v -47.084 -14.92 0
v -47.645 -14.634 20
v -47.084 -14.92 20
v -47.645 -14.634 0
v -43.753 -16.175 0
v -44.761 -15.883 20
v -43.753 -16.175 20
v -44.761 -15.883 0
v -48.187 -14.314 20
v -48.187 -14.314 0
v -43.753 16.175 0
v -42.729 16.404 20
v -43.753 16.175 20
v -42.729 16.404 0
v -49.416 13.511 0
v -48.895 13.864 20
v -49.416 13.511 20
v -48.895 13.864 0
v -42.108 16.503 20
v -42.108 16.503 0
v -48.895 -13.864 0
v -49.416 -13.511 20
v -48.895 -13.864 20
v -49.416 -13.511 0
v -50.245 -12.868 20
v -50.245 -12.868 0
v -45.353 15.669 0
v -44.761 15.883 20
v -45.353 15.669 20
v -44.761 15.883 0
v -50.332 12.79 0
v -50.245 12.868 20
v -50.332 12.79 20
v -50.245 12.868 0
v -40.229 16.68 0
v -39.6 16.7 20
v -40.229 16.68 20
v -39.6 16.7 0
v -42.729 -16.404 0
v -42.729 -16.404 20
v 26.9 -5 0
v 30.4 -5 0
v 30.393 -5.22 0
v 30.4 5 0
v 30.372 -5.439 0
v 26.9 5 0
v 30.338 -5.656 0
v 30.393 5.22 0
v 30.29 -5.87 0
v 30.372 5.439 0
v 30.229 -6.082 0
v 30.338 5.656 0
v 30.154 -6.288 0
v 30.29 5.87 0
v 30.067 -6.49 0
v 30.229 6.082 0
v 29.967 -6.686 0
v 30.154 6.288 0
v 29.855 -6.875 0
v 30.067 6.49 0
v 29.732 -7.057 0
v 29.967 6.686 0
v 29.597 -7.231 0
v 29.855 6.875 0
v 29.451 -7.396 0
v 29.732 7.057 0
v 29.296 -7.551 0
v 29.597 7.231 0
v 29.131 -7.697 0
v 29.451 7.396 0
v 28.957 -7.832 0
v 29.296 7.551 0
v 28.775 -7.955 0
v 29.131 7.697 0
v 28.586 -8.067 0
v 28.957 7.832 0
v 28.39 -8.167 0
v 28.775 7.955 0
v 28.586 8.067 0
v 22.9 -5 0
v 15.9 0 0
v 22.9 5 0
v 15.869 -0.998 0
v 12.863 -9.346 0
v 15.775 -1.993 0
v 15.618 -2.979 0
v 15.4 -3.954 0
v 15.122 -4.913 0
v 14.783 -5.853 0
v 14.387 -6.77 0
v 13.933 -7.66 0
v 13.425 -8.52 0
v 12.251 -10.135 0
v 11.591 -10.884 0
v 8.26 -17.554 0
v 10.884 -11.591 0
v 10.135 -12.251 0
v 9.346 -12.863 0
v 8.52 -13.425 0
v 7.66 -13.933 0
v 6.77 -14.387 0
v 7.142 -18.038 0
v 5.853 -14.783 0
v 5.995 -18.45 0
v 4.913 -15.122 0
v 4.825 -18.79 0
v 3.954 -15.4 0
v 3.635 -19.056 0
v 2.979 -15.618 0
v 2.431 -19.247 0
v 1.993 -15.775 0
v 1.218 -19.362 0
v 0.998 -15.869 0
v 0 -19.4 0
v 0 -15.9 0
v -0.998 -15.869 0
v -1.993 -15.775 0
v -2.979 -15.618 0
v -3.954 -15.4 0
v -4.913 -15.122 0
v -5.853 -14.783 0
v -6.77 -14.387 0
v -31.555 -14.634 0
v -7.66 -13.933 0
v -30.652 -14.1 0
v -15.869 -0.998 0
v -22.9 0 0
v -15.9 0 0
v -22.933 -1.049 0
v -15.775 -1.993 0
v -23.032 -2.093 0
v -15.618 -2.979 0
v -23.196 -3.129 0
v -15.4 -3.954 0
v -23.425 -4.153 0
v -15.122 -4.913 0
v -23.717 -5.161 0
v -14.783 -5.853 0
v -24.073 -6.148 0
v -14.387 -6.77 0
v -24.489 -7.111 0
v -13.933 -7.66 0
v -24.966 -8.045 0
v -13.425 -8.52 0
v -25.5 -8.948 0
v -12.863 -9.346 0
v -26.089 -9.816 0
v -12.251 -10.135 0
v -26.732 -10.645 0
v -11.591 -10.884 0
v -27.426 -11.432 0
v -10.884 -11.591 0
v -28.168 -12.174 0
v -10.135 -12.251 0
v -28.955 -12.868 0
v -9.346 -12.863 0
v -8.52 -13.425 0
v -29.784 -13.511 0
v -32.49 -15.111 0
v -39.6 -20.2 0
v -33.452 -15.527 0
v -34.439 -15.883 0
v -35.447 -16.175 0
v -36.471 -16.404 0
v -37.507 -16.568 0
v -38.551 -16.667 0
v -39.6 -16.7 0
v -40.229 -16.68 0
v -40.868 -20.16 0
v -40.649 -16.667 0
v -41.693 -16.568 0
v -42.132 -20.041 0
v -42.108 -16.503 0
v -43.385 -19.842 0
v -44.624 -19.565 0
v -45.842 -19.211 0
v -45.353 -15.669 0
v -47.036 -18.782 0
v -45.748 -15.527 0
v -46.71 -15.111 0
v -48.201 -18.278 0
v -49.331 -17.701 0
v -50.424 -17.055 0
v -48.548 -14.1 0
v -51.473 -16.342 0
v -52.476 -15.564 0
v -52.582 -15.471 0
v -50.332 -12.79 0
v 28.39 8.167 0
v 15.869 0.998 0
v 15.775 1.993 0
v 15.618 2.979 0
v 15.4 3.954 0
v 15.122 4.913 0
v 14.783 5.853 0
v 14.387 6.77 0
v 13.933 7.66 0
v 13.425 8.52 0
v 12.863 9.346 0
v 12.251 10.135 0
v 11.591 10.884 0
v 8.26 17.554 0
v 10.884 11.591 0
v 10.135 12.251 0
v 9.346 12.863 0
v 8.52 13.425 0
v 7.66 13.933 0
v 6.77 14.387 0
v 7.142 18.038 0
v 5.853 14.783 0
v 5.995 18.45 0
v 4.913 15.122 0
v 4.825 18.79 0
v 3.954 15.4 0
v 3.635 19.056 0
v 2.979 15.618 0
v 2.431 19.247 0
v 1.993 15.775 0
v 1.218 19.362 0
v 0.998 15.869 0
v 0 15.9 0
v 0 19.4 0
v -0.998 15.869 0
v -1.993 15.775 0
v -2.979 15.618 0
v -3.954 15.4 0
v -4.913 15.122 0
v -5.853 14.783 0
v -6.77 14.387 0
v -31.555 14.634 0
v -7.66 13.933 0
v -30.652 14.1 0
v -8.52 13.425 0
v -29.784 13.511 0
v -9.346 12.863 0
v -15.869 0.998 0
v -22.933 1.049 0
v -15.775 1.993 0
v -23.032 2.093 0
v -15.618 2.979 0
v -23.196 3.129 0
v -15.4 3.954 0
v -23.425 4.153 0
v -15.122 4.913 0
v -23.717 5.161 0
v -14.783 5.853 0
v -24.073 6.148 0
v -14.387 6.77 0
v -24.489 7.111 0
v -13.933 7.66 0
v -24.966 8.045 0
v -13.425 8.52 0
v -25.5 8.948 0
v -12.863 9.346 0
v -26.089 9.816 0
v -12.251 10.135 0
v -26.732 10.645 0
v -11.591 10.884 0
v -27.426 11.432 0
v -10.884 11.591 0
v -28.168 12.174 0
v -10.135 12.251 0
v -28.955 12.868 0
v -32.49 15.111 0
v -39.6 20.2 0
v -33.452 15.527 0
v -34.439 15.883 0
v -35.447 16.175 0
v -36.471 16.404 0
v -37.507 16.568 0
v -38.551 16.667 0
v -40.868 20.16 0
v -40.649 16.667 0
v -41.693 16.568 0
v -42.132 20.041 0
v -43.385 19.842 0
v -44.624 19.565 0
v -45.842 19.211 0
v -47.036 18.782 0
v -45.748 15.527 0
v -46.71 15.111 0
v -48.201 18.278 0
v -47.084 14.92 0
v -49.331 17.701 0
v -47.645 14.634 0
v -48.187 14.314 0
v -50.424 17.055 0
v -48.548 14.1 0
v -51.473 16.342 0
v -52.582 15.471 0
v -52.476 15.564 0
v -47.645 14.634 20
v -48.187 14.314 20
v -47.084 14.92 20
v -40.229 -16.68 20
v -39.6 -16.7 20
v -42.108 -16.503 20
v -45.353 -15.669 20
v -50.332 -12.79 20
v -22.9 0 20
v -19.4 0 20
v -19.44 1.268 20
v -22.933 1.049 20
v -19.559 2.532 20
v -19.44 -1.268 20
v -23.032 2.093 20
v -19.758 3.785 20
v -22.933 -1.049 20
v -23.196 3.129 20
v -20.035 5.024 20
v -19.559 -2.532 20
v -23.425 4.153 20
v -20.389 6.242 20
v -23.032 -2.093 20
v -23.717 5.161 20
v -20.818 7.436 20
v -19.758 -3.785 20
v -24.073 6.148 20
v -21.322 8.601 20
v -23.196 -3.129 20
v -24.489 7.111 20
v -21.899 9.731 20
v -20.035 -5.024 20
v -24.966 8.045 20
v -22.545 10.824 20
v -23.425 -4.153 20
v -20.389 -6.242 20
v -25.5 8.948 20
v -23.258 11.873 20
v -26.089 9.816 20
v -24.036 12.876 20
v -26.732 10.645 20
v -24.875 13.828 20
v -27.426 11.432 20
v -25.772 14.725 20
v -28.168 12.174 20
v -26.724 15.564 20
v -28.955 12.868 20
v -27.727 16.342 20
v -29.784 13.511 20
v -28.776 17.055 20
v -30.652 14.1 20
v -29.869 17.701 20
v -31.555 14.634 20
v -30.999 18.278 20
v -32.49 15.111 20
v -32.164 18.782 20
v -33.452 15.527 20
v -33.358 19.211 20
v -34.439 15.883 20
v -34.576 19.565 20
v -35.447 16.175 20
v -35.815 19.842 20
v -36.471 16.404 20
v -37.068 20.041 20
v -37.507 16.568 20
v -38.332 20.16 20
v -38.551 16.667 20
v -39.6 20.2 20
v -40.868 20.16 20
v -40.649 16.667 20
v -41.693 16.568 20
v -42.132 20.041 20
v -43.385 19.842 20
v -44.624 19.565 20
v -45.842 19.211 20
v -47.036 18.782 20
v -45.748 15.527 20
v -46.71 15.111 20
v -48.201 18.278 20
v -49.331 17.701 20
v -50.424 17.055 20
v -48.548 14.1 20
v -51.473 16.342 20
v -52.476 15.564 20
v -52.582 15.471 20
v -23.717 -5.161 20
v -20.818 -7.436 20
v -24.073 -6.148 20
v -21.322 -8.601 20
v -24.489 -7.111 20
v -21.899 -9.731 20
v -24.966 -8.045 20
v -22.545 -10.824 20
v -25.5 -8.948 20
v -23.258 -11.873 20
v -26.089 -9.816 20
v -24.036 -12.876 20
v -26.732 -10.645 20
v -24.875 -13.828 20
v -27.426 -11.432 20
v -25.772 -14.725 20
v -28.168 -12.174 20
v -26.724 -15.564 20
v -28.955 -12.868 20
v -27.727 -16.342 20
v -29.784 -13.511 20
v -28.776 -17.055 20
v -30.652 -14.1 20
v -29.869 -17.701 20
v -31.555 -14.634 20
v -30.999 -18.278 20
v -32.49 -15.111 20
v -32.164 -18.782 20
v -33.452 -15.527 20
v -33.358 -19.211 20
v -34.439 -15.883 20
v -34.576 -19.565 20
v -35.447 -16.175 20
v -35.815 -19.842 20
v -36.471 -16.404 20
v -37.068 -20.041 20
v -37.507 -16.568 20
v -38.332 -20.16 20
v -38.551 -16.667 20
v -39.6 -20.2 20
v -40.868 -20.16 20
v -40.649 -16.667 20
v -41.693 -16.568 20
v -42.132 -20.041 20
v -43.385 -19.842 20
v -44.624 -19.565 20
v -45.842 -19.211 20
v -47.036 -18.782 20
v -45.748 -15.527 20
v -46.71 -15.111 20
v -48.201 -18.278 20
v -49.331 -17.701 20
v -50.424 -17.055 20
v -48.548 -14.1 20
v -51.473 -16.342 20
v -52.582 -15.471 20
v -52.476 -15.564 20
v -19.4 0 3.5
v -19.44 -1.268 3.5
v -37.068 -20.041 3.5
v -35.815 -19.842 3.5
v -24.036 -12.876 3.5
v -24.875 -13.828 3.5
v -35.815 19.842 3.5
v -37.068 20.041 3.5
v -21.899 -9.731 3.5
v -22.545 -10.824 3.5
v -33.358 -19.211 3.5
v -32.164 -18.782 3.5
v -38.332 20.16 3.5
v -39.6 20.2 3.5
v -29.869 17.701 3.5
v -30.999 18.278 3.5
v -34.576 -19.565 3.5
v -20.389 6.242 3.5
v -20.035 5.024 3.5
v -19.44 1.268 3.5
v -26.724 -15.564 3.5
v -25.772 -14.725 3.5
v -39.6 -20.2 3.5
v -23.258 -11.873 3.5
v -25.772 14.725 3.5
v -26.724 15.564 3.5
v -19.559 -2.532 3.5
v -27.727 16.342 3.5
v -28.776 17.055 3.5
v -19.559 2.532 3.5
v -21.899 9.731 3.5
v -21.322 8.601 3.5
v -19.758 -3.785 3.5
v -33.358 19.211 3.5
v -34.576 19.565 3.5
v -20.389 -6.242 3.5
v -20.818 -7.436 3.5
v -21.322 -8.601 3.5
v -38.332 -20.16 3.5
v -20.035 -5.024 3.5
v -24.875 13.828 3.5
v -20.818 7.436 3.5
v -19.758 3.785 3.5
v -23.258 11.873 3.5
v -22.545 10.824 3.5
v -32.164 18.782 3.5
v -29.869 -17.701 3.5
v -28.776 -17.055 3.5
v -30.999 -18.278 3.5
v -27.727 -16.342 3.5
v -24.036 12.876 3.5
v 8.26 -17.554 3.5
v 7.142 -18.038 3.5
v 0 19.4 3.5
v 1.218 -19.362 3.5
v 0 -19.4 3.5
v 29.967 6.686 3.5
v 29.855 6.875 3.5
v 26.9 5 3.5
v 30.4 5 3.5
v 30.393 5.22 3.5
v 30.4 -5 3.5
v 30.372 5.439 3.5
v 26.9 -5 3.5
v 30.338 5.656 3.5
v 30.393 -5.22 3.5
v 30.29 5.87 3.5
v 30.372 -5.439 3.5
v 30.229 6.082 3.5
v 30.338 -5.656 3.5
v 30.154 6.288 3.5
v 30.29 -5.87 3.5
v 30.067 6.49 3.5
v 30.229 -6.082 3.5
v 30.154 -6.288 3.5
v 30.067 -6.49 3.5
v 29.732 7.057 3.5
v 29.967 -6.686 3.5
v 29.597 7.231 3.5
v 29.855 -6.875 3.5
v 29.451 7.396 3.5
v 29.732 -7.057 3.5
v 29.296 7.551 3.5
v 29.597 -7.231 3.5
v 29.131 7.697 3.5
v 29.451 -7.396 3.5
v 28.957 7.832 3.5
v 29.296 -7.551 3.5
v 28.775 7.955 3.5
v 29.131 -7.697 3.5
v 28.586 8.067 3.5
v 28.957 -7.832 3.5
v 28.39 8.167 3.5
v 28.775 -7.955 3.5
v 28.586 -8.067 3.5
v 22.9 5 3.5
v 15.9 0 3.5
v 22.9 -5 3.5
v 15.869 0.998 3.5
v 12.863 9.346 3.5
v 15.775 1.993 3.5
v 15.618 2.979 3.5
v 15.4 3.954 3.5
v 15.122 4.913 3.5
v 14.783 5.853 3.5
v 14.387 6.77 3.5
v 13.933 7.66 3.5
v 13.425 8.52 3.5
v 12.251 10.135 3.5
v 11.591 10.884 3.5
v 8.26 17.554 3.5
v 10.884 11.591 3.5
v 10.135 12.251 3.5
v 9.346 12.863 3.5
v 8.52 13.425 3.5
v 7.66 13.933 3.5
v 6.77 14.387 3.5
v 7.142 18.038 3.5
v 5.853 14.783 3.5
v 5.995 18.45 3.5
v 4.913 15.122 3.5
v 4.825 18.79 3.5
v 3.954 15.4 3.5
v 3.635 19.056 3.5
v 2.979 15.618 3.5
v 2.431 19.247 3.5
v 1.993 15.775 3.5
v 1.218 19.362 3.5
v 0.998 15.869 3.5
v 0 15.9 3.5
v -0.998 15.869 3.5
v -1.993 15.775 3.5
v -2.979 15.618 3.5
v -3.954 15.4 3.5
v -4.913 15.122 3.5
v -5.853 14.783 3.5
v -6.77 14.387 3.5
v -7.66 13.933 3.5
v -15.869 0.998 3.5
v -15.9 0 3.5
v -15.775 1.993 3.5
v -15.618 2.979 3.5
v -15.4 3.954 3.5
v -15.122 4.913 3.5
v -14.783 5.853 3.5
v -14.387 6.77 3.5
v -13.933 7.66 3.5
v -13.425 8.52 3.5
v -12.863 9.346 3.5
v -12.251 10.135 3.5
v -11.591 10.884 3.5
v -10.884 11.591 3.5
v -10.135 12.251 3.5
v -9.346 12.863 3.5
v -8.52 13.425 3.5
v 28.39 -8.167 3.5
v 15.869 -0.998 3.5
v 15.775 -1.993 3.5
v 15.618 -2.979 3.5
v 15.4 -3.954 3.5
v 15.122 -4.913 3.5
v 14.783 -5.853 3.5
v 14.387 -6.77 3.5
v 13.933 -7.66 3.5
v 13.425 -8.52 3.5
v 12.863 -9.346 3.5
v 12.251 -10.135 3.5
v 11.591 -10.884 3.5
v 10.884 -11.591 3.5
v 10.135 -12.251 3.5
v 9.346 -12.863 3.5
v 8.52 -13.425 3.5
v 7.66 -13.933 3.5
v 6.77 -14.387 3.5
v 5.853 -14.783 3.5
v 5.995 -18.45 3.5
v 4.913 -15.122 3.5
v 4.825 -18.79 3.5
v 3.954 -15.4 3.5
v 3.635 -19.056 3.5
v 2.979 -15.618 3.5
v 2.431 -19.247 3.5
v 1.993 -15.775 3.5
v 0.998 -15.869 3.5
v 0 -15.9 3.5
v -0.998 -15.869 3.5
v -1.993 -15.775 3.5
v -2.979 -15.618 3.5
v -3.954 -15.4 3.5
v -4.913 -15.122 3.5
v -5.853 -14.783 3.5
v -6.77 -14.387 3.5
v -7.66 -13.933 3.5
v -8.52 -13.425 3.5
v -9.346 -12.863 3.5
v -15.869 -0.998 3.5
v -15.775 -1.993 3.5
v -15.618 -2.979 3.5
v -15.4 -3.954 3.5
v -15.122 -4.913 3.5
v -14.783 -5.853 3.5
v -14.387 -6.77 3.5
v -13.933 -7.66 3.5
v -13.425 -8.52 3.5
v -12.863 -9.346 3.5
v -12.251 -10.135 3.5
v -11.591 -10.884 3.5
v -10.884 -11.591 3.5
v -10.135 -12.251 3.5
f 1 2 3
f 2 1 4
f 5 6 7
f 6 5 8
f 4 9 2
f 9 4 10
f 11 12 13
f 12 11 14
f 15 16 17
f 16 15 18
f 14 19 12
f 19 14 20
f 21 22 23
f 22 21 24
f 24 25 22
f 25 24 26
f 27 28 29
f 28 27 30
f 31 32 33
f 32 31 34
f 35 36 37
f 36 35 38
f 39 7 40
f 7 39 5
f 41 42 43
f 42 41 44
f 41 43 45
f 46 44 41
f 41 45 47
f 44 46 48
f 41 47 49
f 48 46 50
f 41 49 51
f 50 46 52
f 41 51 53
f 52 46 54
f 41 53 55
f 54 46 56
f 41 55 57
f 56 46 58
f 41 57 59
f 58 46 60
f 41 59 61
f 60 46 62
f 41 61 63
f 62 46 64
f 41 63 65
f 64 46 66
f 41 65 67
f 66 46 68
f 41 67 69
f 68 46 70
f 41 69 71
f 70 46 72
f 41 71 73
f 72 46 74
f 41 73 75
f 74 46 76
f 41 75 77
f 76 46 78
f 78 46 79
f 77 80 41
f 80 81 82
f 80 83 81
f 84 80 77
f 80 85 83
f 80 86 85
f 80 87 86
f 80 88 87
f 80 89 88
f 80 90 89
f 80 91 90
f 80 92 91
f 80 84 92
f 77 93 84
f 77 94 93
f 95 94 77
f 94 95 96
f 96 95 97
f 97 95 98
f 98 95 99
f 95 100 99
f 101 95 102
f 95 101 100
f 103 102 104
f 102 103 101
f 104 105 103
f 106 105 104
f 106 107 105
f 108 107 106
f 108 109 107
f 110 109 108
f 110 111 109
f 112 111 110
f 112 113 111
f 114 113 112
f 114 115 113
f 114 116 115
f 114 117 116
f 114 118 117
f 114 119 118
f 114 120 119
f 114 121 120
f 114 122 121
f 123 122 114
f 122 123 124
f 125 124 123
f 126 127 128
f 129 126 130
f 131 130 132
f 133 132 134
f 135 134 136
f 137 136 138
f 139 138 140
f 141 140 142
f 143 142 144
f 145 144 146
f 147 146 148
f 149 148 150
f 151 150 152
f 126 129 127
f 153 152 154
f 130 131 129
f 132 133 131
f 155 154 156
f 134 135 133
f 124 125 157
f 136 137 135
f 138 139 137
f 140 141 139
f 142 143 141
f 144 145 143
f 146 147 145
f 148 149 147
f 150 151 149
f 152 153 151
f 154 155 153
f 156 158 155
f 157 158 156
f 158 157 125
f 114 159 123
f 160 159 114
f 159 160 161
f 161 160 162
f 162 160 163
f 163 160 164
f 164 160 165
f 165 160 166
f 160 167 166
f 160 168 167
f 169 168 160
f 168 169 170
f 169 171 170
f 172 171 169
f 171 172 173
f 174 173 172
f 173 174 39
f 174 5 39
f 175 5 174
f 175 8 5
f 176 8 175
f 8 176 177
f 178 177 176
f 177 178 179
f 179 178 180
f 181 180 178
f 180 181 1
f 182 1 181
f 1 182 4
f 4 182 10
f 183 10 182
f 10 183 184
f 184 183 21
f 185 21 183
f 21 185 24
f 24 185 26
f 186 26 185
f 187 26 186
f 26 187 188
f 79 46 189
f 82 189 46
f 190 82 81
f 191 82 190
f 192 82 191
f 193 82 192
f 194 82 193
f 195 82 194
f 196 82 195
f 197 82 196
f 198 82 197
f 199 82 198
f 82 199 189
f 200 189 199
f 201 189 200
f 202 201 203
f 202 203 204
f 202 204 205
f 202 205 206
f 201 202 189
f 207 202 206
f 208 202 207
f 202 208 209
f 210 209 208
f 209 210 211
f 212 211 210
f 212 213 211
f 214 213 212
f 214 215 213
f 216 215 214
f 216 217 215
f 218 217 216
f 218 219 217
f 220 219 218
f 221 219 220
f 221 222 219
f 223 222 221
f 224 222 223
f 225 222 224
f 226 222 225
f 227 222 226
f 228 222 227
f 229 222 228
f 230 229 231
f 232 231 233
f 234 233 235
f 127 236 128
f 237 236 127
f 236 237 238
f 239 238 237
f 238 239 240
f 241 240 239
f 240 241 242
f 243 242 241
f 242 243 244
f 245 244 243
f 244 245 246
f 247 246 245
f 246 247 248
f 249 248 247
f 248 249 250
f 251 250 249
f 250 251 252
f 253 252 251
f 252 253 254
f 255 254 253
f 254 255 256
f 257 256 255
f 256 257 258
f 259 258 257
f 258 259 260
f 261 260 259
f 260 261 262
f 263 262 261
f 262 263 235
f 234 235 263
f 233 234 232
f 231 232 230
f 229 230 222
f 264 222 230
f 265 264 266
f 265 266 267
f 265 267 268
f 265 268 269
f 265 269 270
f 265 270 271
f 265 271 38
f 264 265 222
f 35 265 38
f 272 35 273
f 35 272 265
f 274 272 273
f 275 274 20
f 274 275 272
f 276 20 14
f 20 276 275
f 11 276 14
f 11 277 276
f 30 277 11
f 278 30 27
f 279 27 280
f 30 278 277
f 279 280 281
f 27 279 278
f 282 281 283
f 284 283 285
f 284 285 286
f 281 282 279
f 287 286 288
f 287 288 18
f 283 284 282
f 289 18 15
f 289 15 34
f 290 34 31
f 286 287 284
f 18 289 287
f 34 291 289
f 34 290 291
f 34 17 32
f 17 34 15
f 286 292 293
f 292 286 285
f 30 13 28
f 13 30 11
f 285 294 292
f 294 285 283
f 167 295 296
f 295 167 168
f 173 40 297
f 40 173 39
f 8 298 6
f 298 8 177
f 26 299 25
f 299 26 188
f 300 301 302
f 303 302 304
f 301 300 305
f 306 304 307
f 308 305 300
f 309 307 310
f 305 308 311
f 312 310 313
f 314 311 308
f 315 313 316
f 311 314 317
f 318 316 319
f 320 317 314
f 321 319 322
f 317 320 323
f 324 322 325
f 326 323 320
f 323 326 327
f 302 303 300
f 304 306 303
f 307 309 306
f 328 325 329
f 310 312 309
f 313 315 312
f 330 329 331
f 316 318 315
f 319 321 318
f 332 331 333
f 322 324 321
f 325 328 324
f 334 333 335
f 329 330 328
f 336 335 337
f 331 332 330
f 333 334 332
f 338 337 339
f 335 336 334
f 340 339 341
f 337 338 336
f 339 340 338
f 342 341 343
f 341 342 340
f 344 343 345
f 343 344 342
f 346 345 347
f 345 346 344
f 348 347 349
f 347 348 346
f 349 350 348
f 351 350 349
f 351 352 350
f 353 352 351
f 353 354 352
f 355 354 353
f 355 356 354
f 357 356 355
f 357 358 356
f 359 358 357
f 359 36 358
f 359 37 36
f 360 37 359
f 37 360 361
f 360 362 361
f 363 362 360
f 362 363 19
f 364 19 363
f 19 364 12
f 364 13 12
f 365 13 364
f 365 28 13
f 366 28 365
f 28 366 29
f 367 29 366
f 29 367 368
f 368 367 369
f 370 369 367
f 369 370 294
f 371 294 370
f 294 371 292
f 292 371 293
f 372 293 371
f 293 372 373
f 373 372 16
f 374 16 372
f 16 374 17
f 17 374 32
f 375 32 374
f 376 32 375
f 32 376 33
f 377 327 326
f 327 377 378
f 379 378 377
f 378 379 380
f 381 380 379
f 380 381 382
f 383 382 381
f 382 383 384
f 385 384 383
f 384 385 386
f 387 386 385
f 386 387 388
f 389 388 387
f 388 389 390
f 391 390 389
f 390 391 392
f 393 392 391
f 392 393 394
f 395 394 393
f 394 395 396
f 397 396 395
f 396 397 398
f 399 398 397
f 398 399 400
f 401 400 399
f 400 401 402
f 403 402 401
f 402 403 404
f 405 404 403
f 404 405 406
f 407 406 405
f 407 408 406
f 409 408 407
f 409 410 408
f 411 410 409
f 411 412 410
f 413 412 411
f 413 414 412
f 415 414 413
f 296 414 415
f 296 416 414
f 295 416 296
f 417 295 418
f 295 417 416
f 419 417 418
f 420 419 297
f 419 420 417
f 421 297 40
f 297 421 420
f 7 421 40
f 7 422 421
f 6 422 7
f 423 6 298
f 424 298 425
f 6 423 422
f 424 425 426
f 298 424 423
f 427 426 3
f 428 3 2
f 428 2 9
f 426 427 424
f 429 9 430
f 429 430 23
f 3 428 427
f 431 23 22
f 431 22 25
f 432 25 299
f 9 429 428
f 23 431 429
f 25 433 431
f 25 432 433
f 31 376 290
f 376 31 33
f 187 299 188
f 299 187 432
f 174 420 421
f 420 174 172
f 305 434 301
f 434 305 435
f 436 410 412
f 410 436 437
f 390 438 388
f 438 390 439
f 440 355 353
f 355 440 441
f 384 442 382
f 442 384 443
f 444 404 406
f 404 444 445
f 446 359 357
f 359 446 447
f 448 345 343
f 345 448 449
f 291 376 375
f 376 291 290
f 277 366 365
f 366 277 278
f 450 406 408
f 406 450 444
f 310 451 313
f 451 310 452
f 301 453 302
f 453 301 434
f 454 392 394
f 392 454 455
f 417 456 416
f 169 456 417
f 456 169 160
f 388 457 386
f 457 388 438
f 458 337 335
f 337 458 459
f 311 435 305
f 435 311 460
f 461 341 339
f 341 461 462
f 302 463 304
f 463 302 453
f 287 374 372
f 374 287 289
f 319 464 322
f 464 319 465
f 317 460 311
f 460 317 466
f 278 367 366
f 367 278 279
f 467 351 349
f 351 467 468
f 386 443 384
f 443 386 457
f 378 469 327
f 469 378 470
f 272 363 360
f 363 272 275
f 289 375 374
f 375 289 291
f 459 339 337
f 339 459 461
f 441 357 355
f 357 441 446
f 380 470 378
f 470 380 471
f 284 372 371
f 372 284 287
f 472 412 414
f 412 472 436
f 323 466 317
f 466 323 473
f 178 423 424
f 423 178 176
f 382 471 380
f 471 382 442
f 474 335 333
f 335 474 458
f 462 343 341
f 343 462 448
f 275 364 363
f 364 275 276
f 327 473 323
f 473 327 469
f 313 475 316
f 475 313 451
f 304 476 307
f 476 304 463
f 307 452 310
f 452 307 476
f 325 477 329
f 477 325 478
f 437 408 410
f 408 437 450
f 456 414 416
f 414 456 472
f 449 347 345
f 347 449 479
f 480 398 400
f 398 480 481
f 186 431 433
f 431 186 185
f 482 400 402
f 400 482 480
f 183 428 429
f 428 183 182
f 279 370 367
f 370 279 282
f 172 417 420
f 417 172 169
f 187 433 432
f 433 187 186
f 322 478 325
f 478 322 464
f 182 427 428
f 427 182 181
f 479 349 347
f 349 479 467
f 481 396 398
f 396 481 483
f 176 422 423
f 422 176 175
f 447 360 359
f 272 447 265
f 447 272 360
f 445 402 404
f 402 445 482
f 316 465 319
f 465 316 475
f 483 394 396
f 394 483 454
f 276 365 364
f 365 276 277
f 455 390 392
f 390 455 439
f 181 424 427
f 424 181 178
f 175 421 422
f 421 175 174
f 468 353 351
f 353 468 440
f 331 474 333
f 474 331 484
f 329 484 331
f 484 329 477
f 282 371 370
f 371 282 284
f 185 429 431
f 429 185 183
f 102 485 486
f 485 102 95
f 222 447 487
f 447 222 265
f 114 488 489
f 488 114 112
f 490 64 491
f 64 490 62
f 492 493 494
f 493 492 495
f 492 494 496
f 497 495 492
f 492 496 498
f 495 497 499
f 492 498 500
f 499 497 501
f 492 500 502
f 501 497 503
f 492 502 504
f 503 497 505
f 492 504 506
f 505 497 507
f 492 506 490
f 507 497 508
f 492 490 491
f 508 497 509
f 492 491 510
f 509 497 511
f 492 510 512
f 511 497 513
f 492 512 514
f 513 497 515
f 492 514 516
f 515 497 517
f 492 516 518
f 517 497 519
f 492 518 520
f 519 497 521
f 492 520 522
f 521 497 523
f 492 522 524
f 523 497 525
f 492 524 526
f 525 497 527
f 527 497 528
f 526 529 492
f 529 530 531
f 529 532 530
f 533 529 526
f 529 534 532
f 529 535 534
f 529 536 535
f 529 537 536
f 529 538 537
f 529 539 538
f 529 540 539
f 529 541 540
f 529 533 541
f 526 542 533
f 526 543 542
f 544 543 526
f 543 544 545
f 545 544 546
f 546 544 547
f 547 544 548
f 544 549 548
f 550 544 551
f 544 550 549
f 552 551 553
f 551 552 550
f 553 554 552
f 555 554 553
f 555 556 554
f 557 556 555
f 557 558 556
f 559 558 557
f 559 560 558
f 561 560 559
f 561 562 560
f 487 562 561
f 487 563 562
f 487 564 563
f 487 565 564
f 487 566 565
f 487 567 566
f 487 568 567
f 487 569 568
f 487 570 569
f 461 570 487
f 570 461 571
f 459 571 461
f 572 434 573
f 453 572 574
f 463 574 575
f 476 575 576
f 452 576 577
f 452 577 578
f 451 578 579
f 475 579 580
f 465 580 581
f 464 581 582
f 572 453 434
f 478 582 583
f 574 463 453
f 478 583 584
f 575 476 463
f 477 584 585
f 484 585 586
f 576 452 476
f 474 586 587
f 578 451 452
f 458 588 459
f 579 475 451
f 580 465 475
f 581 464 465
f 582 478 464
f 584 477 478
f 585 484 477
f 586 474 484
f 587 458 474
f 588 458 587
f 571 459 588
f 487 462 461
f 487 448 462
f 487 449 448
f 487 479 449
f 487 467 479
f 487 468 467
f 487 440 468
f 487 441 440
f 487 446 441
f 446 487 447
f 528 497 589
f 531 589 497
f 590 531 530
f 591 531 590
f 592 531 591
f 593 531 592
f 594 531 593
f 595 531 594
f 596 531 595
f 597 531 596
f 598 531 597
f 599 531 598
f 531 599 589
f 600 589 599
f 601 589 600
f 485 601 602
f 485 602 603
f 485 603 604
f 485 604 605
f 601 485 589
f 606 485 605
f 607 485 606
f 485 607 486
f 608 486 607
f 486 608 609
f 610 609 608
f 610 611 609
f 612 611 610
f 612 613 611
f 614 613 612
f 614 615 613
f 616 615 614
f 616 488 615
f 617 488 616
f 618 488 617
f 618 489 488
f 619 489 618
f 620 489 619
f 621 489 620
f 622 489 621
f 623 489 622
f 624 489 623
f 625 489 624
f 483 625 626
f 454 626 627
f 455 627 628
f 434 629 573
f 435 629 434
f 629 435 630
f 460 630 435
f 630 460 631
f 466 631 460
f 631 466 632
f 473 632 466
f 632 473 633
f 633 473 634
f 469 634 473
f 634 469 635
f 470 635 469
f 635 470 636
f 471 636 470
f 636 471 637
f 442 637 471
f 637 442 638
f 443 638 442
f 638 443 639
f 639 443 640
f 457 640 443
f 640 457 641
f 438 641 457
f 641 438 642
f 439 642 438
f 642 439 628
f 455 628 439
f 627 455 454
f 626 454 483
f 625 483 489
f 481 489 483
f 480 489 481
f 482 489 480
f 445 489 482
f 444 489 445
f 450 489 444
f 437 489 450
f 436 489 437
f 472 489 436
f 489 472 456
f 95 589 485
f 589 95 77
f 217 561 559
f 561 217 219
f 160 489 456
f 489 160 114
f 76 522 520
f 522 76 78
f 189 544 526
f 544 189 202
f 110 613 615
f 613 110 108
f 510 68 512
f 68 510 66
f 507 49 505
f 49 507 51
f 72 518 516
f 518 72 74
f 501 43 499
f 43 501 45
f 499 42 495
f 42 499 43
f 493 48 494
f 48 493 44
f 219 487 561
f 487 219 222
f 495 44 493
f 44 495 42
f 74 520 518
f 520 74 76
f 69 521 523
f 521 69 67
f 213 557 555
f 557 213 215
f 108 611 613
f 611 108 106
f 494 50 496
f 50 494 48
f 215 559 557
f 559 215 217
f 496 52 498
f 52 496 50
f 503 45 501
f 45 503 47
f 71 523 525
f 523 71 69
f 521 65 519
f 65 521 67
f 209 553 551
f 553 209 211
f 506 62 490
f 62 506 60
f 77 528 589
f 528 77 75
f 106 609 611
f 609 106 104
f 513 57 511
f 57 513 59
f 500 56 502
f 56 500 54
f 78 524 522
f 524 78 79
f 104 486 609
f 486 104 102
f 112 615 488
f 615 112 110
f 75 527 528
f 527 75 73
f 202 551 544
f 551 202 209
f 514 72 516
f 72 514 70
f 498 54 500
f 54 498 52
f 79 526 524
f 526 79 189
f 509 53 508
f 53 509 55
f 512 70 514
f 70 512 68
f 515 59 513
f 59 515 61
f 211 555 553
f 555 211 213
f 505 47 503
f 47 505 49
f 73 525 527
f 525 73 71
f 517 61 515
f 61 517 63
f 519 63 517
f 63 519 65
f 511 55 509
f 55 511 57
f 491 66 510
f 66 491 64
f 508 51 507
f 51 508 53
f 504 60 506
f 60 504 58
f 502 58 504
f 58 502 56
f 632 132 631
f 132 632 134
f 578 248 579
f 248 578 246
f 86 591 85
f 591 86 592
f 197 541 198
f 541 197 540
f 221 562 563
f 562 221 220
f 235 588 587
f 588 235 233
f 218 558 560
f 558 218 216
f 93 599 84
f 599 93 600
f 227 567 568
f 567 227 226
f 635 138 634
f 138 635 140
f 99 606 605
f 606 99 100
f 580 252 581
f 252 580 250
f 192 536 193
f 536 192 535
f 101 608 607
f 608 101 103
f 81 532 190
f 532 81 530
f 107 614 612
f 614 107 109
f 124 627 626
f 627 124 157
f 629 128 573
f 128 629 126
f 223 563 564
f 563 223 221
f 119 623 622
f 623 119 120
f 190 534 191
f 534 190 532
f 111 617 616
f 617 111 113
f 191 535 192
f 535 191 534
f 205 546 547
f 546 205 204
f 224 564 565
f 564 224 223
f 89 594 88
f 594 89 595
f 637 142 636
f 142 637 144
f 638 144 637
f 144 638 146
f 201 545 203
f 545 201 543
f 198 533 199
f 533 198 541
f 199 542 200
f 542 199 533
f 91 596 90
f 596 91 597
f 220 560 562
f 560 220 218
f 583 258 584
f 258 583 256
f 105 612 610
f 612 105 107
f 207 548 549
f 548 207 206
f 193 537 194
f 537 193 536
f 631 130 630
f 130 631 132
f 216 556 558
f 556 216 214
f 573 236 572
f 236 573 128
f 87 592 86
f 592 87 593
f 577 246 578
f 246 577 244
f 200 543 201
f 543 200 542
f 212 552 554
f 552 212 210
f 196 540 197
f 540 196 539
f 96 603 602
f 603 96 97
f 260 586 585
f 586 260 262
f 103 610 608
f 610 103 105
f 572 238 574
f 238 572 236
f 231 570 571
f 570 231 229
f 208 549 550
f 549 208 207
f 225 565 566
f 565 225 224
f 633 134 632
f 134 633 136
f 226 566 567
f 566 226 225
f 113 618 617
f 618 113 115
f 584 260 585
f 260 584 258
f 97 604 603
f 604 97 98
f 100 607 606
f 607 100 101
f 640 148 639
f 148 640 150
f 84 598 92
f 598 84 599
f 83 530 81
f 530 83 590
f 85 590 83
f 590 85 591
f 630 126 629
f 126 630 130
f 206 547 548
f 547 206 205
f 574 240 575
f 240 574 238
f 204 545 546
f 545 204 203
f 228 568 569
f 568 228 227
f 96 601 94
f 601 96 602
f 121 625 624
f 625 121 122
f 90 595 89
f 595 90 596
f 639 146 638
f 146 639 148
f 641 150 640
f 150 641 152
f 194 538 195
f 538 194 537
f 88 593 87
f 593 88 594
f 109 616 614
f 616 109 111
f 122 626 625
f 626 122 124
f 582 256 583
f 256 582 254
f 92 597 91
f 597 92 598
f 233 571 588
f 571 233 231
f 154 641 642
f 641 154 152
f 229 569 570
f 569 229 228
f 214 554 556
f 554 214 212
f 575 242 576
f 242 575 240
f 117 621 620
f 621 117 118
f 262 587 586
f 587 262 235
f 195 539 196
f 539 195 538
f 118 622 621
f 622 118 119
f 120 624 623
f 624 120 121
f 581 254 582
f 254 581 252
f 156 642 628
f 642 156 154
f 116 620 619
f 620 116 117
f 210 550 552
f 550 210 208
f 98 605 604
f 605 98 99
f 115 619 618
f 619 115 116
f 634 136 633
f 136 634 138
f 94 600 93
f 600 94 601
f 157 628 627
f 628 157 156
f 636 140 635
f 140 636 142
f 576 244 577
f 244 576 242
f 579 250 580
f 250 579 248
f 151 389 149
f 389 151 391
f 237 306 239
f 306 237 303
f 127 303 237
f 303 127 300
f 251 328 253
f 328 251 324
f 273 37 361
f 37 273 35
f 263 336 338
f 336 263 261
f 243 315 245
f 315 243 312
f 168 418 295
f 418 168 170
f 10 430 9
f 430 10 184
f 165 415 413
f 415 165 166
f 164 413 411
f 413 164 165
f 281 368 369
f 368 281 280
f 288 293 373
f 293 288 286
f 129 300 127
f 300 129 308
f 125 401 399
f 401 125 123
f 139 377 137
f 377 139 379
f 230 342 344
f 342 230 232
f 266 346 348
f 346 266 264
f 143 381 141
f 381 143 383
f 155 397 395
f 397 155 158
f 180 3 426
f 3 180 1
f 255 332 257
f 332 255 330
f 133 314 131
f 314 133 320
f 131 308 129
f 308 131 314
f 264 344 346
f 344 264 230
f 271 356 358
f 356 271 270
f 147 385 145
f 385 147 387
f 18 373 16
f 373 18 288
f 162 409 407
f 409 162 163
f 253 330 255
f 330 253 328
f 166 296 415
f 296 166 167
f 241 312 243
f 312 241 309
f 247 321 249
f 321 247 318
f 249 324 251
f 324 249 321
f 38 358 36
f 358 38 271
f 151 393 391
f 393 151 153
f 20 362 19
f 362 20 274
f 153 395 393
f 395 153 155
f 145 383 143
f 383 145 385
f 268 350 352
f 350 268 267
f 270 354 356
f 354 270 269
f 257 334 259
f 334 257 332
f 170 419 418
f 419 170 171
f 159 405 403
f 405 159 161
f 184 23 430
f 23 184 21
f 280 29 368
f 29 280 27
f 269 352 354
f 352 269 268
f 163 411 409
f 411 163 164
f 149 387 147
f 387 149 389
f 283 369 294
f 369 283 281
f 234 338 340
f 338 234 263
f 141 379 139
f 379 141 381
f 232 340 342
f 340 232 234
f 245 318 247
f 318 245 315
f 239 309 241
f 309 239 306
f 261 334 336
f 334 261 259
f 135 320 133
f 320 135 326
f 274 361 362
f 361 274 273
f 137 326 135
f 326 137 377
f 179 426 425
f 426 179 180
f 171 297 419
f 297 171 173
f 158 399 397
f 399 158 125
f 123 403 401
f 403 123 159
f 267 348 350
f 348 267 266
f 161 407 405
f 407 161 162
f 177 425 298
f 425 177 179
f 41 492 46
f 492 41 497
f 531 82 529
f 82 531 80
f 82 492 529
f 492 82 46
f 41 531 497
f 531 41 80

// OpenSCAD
r_clip = 16.7;
throat_a = 50;
size = 20;

r_botlle = 15.9;
margen = 7;
margen_2 = 4;

width = 10;
thickness = 4;

th = 3.5;

$fn = 100;
union(){
    difference(){
        union(){
            translate([-r_clip - r_botlle - margen, 0, 0])
                cylinder(size, r_clip + th, r_clip + th);
            hull(){
                cylinder(th, r_botlle + th, r_botlle + th);
                translate([-r_clip - r_botlle - margen, 0, 0])
                cylinder(th, r_clip + th, r_clip + th);
                
                translate([r_botlle + margen + thickness, width/2, 0])  cylinder(th, th, th);
                translate([r_botlle + margen + thickness, -width/2, 0])  cylinder(th, th, th);
                
            }
        }
        cylinder(th, r_botlle, r_botlle);
        translate([-r_clip - r_botlle - margen, 0, 0]) cylinder(size, r_clip, r_clip);
        translate([r_botlle + margen, -width/2, 0]) cube([thickness, width, th]);
        
        translate([-r_clip - r_botlle - margen, 0, 0]) {
            cylinder(size, r_clip, r_clip);
            rotate([0, 0, 180 - throat_a]) rotate_extrude(angle=2*throat_a) square([r_clip/sin(throat_a), size]);
        }
    }
}
